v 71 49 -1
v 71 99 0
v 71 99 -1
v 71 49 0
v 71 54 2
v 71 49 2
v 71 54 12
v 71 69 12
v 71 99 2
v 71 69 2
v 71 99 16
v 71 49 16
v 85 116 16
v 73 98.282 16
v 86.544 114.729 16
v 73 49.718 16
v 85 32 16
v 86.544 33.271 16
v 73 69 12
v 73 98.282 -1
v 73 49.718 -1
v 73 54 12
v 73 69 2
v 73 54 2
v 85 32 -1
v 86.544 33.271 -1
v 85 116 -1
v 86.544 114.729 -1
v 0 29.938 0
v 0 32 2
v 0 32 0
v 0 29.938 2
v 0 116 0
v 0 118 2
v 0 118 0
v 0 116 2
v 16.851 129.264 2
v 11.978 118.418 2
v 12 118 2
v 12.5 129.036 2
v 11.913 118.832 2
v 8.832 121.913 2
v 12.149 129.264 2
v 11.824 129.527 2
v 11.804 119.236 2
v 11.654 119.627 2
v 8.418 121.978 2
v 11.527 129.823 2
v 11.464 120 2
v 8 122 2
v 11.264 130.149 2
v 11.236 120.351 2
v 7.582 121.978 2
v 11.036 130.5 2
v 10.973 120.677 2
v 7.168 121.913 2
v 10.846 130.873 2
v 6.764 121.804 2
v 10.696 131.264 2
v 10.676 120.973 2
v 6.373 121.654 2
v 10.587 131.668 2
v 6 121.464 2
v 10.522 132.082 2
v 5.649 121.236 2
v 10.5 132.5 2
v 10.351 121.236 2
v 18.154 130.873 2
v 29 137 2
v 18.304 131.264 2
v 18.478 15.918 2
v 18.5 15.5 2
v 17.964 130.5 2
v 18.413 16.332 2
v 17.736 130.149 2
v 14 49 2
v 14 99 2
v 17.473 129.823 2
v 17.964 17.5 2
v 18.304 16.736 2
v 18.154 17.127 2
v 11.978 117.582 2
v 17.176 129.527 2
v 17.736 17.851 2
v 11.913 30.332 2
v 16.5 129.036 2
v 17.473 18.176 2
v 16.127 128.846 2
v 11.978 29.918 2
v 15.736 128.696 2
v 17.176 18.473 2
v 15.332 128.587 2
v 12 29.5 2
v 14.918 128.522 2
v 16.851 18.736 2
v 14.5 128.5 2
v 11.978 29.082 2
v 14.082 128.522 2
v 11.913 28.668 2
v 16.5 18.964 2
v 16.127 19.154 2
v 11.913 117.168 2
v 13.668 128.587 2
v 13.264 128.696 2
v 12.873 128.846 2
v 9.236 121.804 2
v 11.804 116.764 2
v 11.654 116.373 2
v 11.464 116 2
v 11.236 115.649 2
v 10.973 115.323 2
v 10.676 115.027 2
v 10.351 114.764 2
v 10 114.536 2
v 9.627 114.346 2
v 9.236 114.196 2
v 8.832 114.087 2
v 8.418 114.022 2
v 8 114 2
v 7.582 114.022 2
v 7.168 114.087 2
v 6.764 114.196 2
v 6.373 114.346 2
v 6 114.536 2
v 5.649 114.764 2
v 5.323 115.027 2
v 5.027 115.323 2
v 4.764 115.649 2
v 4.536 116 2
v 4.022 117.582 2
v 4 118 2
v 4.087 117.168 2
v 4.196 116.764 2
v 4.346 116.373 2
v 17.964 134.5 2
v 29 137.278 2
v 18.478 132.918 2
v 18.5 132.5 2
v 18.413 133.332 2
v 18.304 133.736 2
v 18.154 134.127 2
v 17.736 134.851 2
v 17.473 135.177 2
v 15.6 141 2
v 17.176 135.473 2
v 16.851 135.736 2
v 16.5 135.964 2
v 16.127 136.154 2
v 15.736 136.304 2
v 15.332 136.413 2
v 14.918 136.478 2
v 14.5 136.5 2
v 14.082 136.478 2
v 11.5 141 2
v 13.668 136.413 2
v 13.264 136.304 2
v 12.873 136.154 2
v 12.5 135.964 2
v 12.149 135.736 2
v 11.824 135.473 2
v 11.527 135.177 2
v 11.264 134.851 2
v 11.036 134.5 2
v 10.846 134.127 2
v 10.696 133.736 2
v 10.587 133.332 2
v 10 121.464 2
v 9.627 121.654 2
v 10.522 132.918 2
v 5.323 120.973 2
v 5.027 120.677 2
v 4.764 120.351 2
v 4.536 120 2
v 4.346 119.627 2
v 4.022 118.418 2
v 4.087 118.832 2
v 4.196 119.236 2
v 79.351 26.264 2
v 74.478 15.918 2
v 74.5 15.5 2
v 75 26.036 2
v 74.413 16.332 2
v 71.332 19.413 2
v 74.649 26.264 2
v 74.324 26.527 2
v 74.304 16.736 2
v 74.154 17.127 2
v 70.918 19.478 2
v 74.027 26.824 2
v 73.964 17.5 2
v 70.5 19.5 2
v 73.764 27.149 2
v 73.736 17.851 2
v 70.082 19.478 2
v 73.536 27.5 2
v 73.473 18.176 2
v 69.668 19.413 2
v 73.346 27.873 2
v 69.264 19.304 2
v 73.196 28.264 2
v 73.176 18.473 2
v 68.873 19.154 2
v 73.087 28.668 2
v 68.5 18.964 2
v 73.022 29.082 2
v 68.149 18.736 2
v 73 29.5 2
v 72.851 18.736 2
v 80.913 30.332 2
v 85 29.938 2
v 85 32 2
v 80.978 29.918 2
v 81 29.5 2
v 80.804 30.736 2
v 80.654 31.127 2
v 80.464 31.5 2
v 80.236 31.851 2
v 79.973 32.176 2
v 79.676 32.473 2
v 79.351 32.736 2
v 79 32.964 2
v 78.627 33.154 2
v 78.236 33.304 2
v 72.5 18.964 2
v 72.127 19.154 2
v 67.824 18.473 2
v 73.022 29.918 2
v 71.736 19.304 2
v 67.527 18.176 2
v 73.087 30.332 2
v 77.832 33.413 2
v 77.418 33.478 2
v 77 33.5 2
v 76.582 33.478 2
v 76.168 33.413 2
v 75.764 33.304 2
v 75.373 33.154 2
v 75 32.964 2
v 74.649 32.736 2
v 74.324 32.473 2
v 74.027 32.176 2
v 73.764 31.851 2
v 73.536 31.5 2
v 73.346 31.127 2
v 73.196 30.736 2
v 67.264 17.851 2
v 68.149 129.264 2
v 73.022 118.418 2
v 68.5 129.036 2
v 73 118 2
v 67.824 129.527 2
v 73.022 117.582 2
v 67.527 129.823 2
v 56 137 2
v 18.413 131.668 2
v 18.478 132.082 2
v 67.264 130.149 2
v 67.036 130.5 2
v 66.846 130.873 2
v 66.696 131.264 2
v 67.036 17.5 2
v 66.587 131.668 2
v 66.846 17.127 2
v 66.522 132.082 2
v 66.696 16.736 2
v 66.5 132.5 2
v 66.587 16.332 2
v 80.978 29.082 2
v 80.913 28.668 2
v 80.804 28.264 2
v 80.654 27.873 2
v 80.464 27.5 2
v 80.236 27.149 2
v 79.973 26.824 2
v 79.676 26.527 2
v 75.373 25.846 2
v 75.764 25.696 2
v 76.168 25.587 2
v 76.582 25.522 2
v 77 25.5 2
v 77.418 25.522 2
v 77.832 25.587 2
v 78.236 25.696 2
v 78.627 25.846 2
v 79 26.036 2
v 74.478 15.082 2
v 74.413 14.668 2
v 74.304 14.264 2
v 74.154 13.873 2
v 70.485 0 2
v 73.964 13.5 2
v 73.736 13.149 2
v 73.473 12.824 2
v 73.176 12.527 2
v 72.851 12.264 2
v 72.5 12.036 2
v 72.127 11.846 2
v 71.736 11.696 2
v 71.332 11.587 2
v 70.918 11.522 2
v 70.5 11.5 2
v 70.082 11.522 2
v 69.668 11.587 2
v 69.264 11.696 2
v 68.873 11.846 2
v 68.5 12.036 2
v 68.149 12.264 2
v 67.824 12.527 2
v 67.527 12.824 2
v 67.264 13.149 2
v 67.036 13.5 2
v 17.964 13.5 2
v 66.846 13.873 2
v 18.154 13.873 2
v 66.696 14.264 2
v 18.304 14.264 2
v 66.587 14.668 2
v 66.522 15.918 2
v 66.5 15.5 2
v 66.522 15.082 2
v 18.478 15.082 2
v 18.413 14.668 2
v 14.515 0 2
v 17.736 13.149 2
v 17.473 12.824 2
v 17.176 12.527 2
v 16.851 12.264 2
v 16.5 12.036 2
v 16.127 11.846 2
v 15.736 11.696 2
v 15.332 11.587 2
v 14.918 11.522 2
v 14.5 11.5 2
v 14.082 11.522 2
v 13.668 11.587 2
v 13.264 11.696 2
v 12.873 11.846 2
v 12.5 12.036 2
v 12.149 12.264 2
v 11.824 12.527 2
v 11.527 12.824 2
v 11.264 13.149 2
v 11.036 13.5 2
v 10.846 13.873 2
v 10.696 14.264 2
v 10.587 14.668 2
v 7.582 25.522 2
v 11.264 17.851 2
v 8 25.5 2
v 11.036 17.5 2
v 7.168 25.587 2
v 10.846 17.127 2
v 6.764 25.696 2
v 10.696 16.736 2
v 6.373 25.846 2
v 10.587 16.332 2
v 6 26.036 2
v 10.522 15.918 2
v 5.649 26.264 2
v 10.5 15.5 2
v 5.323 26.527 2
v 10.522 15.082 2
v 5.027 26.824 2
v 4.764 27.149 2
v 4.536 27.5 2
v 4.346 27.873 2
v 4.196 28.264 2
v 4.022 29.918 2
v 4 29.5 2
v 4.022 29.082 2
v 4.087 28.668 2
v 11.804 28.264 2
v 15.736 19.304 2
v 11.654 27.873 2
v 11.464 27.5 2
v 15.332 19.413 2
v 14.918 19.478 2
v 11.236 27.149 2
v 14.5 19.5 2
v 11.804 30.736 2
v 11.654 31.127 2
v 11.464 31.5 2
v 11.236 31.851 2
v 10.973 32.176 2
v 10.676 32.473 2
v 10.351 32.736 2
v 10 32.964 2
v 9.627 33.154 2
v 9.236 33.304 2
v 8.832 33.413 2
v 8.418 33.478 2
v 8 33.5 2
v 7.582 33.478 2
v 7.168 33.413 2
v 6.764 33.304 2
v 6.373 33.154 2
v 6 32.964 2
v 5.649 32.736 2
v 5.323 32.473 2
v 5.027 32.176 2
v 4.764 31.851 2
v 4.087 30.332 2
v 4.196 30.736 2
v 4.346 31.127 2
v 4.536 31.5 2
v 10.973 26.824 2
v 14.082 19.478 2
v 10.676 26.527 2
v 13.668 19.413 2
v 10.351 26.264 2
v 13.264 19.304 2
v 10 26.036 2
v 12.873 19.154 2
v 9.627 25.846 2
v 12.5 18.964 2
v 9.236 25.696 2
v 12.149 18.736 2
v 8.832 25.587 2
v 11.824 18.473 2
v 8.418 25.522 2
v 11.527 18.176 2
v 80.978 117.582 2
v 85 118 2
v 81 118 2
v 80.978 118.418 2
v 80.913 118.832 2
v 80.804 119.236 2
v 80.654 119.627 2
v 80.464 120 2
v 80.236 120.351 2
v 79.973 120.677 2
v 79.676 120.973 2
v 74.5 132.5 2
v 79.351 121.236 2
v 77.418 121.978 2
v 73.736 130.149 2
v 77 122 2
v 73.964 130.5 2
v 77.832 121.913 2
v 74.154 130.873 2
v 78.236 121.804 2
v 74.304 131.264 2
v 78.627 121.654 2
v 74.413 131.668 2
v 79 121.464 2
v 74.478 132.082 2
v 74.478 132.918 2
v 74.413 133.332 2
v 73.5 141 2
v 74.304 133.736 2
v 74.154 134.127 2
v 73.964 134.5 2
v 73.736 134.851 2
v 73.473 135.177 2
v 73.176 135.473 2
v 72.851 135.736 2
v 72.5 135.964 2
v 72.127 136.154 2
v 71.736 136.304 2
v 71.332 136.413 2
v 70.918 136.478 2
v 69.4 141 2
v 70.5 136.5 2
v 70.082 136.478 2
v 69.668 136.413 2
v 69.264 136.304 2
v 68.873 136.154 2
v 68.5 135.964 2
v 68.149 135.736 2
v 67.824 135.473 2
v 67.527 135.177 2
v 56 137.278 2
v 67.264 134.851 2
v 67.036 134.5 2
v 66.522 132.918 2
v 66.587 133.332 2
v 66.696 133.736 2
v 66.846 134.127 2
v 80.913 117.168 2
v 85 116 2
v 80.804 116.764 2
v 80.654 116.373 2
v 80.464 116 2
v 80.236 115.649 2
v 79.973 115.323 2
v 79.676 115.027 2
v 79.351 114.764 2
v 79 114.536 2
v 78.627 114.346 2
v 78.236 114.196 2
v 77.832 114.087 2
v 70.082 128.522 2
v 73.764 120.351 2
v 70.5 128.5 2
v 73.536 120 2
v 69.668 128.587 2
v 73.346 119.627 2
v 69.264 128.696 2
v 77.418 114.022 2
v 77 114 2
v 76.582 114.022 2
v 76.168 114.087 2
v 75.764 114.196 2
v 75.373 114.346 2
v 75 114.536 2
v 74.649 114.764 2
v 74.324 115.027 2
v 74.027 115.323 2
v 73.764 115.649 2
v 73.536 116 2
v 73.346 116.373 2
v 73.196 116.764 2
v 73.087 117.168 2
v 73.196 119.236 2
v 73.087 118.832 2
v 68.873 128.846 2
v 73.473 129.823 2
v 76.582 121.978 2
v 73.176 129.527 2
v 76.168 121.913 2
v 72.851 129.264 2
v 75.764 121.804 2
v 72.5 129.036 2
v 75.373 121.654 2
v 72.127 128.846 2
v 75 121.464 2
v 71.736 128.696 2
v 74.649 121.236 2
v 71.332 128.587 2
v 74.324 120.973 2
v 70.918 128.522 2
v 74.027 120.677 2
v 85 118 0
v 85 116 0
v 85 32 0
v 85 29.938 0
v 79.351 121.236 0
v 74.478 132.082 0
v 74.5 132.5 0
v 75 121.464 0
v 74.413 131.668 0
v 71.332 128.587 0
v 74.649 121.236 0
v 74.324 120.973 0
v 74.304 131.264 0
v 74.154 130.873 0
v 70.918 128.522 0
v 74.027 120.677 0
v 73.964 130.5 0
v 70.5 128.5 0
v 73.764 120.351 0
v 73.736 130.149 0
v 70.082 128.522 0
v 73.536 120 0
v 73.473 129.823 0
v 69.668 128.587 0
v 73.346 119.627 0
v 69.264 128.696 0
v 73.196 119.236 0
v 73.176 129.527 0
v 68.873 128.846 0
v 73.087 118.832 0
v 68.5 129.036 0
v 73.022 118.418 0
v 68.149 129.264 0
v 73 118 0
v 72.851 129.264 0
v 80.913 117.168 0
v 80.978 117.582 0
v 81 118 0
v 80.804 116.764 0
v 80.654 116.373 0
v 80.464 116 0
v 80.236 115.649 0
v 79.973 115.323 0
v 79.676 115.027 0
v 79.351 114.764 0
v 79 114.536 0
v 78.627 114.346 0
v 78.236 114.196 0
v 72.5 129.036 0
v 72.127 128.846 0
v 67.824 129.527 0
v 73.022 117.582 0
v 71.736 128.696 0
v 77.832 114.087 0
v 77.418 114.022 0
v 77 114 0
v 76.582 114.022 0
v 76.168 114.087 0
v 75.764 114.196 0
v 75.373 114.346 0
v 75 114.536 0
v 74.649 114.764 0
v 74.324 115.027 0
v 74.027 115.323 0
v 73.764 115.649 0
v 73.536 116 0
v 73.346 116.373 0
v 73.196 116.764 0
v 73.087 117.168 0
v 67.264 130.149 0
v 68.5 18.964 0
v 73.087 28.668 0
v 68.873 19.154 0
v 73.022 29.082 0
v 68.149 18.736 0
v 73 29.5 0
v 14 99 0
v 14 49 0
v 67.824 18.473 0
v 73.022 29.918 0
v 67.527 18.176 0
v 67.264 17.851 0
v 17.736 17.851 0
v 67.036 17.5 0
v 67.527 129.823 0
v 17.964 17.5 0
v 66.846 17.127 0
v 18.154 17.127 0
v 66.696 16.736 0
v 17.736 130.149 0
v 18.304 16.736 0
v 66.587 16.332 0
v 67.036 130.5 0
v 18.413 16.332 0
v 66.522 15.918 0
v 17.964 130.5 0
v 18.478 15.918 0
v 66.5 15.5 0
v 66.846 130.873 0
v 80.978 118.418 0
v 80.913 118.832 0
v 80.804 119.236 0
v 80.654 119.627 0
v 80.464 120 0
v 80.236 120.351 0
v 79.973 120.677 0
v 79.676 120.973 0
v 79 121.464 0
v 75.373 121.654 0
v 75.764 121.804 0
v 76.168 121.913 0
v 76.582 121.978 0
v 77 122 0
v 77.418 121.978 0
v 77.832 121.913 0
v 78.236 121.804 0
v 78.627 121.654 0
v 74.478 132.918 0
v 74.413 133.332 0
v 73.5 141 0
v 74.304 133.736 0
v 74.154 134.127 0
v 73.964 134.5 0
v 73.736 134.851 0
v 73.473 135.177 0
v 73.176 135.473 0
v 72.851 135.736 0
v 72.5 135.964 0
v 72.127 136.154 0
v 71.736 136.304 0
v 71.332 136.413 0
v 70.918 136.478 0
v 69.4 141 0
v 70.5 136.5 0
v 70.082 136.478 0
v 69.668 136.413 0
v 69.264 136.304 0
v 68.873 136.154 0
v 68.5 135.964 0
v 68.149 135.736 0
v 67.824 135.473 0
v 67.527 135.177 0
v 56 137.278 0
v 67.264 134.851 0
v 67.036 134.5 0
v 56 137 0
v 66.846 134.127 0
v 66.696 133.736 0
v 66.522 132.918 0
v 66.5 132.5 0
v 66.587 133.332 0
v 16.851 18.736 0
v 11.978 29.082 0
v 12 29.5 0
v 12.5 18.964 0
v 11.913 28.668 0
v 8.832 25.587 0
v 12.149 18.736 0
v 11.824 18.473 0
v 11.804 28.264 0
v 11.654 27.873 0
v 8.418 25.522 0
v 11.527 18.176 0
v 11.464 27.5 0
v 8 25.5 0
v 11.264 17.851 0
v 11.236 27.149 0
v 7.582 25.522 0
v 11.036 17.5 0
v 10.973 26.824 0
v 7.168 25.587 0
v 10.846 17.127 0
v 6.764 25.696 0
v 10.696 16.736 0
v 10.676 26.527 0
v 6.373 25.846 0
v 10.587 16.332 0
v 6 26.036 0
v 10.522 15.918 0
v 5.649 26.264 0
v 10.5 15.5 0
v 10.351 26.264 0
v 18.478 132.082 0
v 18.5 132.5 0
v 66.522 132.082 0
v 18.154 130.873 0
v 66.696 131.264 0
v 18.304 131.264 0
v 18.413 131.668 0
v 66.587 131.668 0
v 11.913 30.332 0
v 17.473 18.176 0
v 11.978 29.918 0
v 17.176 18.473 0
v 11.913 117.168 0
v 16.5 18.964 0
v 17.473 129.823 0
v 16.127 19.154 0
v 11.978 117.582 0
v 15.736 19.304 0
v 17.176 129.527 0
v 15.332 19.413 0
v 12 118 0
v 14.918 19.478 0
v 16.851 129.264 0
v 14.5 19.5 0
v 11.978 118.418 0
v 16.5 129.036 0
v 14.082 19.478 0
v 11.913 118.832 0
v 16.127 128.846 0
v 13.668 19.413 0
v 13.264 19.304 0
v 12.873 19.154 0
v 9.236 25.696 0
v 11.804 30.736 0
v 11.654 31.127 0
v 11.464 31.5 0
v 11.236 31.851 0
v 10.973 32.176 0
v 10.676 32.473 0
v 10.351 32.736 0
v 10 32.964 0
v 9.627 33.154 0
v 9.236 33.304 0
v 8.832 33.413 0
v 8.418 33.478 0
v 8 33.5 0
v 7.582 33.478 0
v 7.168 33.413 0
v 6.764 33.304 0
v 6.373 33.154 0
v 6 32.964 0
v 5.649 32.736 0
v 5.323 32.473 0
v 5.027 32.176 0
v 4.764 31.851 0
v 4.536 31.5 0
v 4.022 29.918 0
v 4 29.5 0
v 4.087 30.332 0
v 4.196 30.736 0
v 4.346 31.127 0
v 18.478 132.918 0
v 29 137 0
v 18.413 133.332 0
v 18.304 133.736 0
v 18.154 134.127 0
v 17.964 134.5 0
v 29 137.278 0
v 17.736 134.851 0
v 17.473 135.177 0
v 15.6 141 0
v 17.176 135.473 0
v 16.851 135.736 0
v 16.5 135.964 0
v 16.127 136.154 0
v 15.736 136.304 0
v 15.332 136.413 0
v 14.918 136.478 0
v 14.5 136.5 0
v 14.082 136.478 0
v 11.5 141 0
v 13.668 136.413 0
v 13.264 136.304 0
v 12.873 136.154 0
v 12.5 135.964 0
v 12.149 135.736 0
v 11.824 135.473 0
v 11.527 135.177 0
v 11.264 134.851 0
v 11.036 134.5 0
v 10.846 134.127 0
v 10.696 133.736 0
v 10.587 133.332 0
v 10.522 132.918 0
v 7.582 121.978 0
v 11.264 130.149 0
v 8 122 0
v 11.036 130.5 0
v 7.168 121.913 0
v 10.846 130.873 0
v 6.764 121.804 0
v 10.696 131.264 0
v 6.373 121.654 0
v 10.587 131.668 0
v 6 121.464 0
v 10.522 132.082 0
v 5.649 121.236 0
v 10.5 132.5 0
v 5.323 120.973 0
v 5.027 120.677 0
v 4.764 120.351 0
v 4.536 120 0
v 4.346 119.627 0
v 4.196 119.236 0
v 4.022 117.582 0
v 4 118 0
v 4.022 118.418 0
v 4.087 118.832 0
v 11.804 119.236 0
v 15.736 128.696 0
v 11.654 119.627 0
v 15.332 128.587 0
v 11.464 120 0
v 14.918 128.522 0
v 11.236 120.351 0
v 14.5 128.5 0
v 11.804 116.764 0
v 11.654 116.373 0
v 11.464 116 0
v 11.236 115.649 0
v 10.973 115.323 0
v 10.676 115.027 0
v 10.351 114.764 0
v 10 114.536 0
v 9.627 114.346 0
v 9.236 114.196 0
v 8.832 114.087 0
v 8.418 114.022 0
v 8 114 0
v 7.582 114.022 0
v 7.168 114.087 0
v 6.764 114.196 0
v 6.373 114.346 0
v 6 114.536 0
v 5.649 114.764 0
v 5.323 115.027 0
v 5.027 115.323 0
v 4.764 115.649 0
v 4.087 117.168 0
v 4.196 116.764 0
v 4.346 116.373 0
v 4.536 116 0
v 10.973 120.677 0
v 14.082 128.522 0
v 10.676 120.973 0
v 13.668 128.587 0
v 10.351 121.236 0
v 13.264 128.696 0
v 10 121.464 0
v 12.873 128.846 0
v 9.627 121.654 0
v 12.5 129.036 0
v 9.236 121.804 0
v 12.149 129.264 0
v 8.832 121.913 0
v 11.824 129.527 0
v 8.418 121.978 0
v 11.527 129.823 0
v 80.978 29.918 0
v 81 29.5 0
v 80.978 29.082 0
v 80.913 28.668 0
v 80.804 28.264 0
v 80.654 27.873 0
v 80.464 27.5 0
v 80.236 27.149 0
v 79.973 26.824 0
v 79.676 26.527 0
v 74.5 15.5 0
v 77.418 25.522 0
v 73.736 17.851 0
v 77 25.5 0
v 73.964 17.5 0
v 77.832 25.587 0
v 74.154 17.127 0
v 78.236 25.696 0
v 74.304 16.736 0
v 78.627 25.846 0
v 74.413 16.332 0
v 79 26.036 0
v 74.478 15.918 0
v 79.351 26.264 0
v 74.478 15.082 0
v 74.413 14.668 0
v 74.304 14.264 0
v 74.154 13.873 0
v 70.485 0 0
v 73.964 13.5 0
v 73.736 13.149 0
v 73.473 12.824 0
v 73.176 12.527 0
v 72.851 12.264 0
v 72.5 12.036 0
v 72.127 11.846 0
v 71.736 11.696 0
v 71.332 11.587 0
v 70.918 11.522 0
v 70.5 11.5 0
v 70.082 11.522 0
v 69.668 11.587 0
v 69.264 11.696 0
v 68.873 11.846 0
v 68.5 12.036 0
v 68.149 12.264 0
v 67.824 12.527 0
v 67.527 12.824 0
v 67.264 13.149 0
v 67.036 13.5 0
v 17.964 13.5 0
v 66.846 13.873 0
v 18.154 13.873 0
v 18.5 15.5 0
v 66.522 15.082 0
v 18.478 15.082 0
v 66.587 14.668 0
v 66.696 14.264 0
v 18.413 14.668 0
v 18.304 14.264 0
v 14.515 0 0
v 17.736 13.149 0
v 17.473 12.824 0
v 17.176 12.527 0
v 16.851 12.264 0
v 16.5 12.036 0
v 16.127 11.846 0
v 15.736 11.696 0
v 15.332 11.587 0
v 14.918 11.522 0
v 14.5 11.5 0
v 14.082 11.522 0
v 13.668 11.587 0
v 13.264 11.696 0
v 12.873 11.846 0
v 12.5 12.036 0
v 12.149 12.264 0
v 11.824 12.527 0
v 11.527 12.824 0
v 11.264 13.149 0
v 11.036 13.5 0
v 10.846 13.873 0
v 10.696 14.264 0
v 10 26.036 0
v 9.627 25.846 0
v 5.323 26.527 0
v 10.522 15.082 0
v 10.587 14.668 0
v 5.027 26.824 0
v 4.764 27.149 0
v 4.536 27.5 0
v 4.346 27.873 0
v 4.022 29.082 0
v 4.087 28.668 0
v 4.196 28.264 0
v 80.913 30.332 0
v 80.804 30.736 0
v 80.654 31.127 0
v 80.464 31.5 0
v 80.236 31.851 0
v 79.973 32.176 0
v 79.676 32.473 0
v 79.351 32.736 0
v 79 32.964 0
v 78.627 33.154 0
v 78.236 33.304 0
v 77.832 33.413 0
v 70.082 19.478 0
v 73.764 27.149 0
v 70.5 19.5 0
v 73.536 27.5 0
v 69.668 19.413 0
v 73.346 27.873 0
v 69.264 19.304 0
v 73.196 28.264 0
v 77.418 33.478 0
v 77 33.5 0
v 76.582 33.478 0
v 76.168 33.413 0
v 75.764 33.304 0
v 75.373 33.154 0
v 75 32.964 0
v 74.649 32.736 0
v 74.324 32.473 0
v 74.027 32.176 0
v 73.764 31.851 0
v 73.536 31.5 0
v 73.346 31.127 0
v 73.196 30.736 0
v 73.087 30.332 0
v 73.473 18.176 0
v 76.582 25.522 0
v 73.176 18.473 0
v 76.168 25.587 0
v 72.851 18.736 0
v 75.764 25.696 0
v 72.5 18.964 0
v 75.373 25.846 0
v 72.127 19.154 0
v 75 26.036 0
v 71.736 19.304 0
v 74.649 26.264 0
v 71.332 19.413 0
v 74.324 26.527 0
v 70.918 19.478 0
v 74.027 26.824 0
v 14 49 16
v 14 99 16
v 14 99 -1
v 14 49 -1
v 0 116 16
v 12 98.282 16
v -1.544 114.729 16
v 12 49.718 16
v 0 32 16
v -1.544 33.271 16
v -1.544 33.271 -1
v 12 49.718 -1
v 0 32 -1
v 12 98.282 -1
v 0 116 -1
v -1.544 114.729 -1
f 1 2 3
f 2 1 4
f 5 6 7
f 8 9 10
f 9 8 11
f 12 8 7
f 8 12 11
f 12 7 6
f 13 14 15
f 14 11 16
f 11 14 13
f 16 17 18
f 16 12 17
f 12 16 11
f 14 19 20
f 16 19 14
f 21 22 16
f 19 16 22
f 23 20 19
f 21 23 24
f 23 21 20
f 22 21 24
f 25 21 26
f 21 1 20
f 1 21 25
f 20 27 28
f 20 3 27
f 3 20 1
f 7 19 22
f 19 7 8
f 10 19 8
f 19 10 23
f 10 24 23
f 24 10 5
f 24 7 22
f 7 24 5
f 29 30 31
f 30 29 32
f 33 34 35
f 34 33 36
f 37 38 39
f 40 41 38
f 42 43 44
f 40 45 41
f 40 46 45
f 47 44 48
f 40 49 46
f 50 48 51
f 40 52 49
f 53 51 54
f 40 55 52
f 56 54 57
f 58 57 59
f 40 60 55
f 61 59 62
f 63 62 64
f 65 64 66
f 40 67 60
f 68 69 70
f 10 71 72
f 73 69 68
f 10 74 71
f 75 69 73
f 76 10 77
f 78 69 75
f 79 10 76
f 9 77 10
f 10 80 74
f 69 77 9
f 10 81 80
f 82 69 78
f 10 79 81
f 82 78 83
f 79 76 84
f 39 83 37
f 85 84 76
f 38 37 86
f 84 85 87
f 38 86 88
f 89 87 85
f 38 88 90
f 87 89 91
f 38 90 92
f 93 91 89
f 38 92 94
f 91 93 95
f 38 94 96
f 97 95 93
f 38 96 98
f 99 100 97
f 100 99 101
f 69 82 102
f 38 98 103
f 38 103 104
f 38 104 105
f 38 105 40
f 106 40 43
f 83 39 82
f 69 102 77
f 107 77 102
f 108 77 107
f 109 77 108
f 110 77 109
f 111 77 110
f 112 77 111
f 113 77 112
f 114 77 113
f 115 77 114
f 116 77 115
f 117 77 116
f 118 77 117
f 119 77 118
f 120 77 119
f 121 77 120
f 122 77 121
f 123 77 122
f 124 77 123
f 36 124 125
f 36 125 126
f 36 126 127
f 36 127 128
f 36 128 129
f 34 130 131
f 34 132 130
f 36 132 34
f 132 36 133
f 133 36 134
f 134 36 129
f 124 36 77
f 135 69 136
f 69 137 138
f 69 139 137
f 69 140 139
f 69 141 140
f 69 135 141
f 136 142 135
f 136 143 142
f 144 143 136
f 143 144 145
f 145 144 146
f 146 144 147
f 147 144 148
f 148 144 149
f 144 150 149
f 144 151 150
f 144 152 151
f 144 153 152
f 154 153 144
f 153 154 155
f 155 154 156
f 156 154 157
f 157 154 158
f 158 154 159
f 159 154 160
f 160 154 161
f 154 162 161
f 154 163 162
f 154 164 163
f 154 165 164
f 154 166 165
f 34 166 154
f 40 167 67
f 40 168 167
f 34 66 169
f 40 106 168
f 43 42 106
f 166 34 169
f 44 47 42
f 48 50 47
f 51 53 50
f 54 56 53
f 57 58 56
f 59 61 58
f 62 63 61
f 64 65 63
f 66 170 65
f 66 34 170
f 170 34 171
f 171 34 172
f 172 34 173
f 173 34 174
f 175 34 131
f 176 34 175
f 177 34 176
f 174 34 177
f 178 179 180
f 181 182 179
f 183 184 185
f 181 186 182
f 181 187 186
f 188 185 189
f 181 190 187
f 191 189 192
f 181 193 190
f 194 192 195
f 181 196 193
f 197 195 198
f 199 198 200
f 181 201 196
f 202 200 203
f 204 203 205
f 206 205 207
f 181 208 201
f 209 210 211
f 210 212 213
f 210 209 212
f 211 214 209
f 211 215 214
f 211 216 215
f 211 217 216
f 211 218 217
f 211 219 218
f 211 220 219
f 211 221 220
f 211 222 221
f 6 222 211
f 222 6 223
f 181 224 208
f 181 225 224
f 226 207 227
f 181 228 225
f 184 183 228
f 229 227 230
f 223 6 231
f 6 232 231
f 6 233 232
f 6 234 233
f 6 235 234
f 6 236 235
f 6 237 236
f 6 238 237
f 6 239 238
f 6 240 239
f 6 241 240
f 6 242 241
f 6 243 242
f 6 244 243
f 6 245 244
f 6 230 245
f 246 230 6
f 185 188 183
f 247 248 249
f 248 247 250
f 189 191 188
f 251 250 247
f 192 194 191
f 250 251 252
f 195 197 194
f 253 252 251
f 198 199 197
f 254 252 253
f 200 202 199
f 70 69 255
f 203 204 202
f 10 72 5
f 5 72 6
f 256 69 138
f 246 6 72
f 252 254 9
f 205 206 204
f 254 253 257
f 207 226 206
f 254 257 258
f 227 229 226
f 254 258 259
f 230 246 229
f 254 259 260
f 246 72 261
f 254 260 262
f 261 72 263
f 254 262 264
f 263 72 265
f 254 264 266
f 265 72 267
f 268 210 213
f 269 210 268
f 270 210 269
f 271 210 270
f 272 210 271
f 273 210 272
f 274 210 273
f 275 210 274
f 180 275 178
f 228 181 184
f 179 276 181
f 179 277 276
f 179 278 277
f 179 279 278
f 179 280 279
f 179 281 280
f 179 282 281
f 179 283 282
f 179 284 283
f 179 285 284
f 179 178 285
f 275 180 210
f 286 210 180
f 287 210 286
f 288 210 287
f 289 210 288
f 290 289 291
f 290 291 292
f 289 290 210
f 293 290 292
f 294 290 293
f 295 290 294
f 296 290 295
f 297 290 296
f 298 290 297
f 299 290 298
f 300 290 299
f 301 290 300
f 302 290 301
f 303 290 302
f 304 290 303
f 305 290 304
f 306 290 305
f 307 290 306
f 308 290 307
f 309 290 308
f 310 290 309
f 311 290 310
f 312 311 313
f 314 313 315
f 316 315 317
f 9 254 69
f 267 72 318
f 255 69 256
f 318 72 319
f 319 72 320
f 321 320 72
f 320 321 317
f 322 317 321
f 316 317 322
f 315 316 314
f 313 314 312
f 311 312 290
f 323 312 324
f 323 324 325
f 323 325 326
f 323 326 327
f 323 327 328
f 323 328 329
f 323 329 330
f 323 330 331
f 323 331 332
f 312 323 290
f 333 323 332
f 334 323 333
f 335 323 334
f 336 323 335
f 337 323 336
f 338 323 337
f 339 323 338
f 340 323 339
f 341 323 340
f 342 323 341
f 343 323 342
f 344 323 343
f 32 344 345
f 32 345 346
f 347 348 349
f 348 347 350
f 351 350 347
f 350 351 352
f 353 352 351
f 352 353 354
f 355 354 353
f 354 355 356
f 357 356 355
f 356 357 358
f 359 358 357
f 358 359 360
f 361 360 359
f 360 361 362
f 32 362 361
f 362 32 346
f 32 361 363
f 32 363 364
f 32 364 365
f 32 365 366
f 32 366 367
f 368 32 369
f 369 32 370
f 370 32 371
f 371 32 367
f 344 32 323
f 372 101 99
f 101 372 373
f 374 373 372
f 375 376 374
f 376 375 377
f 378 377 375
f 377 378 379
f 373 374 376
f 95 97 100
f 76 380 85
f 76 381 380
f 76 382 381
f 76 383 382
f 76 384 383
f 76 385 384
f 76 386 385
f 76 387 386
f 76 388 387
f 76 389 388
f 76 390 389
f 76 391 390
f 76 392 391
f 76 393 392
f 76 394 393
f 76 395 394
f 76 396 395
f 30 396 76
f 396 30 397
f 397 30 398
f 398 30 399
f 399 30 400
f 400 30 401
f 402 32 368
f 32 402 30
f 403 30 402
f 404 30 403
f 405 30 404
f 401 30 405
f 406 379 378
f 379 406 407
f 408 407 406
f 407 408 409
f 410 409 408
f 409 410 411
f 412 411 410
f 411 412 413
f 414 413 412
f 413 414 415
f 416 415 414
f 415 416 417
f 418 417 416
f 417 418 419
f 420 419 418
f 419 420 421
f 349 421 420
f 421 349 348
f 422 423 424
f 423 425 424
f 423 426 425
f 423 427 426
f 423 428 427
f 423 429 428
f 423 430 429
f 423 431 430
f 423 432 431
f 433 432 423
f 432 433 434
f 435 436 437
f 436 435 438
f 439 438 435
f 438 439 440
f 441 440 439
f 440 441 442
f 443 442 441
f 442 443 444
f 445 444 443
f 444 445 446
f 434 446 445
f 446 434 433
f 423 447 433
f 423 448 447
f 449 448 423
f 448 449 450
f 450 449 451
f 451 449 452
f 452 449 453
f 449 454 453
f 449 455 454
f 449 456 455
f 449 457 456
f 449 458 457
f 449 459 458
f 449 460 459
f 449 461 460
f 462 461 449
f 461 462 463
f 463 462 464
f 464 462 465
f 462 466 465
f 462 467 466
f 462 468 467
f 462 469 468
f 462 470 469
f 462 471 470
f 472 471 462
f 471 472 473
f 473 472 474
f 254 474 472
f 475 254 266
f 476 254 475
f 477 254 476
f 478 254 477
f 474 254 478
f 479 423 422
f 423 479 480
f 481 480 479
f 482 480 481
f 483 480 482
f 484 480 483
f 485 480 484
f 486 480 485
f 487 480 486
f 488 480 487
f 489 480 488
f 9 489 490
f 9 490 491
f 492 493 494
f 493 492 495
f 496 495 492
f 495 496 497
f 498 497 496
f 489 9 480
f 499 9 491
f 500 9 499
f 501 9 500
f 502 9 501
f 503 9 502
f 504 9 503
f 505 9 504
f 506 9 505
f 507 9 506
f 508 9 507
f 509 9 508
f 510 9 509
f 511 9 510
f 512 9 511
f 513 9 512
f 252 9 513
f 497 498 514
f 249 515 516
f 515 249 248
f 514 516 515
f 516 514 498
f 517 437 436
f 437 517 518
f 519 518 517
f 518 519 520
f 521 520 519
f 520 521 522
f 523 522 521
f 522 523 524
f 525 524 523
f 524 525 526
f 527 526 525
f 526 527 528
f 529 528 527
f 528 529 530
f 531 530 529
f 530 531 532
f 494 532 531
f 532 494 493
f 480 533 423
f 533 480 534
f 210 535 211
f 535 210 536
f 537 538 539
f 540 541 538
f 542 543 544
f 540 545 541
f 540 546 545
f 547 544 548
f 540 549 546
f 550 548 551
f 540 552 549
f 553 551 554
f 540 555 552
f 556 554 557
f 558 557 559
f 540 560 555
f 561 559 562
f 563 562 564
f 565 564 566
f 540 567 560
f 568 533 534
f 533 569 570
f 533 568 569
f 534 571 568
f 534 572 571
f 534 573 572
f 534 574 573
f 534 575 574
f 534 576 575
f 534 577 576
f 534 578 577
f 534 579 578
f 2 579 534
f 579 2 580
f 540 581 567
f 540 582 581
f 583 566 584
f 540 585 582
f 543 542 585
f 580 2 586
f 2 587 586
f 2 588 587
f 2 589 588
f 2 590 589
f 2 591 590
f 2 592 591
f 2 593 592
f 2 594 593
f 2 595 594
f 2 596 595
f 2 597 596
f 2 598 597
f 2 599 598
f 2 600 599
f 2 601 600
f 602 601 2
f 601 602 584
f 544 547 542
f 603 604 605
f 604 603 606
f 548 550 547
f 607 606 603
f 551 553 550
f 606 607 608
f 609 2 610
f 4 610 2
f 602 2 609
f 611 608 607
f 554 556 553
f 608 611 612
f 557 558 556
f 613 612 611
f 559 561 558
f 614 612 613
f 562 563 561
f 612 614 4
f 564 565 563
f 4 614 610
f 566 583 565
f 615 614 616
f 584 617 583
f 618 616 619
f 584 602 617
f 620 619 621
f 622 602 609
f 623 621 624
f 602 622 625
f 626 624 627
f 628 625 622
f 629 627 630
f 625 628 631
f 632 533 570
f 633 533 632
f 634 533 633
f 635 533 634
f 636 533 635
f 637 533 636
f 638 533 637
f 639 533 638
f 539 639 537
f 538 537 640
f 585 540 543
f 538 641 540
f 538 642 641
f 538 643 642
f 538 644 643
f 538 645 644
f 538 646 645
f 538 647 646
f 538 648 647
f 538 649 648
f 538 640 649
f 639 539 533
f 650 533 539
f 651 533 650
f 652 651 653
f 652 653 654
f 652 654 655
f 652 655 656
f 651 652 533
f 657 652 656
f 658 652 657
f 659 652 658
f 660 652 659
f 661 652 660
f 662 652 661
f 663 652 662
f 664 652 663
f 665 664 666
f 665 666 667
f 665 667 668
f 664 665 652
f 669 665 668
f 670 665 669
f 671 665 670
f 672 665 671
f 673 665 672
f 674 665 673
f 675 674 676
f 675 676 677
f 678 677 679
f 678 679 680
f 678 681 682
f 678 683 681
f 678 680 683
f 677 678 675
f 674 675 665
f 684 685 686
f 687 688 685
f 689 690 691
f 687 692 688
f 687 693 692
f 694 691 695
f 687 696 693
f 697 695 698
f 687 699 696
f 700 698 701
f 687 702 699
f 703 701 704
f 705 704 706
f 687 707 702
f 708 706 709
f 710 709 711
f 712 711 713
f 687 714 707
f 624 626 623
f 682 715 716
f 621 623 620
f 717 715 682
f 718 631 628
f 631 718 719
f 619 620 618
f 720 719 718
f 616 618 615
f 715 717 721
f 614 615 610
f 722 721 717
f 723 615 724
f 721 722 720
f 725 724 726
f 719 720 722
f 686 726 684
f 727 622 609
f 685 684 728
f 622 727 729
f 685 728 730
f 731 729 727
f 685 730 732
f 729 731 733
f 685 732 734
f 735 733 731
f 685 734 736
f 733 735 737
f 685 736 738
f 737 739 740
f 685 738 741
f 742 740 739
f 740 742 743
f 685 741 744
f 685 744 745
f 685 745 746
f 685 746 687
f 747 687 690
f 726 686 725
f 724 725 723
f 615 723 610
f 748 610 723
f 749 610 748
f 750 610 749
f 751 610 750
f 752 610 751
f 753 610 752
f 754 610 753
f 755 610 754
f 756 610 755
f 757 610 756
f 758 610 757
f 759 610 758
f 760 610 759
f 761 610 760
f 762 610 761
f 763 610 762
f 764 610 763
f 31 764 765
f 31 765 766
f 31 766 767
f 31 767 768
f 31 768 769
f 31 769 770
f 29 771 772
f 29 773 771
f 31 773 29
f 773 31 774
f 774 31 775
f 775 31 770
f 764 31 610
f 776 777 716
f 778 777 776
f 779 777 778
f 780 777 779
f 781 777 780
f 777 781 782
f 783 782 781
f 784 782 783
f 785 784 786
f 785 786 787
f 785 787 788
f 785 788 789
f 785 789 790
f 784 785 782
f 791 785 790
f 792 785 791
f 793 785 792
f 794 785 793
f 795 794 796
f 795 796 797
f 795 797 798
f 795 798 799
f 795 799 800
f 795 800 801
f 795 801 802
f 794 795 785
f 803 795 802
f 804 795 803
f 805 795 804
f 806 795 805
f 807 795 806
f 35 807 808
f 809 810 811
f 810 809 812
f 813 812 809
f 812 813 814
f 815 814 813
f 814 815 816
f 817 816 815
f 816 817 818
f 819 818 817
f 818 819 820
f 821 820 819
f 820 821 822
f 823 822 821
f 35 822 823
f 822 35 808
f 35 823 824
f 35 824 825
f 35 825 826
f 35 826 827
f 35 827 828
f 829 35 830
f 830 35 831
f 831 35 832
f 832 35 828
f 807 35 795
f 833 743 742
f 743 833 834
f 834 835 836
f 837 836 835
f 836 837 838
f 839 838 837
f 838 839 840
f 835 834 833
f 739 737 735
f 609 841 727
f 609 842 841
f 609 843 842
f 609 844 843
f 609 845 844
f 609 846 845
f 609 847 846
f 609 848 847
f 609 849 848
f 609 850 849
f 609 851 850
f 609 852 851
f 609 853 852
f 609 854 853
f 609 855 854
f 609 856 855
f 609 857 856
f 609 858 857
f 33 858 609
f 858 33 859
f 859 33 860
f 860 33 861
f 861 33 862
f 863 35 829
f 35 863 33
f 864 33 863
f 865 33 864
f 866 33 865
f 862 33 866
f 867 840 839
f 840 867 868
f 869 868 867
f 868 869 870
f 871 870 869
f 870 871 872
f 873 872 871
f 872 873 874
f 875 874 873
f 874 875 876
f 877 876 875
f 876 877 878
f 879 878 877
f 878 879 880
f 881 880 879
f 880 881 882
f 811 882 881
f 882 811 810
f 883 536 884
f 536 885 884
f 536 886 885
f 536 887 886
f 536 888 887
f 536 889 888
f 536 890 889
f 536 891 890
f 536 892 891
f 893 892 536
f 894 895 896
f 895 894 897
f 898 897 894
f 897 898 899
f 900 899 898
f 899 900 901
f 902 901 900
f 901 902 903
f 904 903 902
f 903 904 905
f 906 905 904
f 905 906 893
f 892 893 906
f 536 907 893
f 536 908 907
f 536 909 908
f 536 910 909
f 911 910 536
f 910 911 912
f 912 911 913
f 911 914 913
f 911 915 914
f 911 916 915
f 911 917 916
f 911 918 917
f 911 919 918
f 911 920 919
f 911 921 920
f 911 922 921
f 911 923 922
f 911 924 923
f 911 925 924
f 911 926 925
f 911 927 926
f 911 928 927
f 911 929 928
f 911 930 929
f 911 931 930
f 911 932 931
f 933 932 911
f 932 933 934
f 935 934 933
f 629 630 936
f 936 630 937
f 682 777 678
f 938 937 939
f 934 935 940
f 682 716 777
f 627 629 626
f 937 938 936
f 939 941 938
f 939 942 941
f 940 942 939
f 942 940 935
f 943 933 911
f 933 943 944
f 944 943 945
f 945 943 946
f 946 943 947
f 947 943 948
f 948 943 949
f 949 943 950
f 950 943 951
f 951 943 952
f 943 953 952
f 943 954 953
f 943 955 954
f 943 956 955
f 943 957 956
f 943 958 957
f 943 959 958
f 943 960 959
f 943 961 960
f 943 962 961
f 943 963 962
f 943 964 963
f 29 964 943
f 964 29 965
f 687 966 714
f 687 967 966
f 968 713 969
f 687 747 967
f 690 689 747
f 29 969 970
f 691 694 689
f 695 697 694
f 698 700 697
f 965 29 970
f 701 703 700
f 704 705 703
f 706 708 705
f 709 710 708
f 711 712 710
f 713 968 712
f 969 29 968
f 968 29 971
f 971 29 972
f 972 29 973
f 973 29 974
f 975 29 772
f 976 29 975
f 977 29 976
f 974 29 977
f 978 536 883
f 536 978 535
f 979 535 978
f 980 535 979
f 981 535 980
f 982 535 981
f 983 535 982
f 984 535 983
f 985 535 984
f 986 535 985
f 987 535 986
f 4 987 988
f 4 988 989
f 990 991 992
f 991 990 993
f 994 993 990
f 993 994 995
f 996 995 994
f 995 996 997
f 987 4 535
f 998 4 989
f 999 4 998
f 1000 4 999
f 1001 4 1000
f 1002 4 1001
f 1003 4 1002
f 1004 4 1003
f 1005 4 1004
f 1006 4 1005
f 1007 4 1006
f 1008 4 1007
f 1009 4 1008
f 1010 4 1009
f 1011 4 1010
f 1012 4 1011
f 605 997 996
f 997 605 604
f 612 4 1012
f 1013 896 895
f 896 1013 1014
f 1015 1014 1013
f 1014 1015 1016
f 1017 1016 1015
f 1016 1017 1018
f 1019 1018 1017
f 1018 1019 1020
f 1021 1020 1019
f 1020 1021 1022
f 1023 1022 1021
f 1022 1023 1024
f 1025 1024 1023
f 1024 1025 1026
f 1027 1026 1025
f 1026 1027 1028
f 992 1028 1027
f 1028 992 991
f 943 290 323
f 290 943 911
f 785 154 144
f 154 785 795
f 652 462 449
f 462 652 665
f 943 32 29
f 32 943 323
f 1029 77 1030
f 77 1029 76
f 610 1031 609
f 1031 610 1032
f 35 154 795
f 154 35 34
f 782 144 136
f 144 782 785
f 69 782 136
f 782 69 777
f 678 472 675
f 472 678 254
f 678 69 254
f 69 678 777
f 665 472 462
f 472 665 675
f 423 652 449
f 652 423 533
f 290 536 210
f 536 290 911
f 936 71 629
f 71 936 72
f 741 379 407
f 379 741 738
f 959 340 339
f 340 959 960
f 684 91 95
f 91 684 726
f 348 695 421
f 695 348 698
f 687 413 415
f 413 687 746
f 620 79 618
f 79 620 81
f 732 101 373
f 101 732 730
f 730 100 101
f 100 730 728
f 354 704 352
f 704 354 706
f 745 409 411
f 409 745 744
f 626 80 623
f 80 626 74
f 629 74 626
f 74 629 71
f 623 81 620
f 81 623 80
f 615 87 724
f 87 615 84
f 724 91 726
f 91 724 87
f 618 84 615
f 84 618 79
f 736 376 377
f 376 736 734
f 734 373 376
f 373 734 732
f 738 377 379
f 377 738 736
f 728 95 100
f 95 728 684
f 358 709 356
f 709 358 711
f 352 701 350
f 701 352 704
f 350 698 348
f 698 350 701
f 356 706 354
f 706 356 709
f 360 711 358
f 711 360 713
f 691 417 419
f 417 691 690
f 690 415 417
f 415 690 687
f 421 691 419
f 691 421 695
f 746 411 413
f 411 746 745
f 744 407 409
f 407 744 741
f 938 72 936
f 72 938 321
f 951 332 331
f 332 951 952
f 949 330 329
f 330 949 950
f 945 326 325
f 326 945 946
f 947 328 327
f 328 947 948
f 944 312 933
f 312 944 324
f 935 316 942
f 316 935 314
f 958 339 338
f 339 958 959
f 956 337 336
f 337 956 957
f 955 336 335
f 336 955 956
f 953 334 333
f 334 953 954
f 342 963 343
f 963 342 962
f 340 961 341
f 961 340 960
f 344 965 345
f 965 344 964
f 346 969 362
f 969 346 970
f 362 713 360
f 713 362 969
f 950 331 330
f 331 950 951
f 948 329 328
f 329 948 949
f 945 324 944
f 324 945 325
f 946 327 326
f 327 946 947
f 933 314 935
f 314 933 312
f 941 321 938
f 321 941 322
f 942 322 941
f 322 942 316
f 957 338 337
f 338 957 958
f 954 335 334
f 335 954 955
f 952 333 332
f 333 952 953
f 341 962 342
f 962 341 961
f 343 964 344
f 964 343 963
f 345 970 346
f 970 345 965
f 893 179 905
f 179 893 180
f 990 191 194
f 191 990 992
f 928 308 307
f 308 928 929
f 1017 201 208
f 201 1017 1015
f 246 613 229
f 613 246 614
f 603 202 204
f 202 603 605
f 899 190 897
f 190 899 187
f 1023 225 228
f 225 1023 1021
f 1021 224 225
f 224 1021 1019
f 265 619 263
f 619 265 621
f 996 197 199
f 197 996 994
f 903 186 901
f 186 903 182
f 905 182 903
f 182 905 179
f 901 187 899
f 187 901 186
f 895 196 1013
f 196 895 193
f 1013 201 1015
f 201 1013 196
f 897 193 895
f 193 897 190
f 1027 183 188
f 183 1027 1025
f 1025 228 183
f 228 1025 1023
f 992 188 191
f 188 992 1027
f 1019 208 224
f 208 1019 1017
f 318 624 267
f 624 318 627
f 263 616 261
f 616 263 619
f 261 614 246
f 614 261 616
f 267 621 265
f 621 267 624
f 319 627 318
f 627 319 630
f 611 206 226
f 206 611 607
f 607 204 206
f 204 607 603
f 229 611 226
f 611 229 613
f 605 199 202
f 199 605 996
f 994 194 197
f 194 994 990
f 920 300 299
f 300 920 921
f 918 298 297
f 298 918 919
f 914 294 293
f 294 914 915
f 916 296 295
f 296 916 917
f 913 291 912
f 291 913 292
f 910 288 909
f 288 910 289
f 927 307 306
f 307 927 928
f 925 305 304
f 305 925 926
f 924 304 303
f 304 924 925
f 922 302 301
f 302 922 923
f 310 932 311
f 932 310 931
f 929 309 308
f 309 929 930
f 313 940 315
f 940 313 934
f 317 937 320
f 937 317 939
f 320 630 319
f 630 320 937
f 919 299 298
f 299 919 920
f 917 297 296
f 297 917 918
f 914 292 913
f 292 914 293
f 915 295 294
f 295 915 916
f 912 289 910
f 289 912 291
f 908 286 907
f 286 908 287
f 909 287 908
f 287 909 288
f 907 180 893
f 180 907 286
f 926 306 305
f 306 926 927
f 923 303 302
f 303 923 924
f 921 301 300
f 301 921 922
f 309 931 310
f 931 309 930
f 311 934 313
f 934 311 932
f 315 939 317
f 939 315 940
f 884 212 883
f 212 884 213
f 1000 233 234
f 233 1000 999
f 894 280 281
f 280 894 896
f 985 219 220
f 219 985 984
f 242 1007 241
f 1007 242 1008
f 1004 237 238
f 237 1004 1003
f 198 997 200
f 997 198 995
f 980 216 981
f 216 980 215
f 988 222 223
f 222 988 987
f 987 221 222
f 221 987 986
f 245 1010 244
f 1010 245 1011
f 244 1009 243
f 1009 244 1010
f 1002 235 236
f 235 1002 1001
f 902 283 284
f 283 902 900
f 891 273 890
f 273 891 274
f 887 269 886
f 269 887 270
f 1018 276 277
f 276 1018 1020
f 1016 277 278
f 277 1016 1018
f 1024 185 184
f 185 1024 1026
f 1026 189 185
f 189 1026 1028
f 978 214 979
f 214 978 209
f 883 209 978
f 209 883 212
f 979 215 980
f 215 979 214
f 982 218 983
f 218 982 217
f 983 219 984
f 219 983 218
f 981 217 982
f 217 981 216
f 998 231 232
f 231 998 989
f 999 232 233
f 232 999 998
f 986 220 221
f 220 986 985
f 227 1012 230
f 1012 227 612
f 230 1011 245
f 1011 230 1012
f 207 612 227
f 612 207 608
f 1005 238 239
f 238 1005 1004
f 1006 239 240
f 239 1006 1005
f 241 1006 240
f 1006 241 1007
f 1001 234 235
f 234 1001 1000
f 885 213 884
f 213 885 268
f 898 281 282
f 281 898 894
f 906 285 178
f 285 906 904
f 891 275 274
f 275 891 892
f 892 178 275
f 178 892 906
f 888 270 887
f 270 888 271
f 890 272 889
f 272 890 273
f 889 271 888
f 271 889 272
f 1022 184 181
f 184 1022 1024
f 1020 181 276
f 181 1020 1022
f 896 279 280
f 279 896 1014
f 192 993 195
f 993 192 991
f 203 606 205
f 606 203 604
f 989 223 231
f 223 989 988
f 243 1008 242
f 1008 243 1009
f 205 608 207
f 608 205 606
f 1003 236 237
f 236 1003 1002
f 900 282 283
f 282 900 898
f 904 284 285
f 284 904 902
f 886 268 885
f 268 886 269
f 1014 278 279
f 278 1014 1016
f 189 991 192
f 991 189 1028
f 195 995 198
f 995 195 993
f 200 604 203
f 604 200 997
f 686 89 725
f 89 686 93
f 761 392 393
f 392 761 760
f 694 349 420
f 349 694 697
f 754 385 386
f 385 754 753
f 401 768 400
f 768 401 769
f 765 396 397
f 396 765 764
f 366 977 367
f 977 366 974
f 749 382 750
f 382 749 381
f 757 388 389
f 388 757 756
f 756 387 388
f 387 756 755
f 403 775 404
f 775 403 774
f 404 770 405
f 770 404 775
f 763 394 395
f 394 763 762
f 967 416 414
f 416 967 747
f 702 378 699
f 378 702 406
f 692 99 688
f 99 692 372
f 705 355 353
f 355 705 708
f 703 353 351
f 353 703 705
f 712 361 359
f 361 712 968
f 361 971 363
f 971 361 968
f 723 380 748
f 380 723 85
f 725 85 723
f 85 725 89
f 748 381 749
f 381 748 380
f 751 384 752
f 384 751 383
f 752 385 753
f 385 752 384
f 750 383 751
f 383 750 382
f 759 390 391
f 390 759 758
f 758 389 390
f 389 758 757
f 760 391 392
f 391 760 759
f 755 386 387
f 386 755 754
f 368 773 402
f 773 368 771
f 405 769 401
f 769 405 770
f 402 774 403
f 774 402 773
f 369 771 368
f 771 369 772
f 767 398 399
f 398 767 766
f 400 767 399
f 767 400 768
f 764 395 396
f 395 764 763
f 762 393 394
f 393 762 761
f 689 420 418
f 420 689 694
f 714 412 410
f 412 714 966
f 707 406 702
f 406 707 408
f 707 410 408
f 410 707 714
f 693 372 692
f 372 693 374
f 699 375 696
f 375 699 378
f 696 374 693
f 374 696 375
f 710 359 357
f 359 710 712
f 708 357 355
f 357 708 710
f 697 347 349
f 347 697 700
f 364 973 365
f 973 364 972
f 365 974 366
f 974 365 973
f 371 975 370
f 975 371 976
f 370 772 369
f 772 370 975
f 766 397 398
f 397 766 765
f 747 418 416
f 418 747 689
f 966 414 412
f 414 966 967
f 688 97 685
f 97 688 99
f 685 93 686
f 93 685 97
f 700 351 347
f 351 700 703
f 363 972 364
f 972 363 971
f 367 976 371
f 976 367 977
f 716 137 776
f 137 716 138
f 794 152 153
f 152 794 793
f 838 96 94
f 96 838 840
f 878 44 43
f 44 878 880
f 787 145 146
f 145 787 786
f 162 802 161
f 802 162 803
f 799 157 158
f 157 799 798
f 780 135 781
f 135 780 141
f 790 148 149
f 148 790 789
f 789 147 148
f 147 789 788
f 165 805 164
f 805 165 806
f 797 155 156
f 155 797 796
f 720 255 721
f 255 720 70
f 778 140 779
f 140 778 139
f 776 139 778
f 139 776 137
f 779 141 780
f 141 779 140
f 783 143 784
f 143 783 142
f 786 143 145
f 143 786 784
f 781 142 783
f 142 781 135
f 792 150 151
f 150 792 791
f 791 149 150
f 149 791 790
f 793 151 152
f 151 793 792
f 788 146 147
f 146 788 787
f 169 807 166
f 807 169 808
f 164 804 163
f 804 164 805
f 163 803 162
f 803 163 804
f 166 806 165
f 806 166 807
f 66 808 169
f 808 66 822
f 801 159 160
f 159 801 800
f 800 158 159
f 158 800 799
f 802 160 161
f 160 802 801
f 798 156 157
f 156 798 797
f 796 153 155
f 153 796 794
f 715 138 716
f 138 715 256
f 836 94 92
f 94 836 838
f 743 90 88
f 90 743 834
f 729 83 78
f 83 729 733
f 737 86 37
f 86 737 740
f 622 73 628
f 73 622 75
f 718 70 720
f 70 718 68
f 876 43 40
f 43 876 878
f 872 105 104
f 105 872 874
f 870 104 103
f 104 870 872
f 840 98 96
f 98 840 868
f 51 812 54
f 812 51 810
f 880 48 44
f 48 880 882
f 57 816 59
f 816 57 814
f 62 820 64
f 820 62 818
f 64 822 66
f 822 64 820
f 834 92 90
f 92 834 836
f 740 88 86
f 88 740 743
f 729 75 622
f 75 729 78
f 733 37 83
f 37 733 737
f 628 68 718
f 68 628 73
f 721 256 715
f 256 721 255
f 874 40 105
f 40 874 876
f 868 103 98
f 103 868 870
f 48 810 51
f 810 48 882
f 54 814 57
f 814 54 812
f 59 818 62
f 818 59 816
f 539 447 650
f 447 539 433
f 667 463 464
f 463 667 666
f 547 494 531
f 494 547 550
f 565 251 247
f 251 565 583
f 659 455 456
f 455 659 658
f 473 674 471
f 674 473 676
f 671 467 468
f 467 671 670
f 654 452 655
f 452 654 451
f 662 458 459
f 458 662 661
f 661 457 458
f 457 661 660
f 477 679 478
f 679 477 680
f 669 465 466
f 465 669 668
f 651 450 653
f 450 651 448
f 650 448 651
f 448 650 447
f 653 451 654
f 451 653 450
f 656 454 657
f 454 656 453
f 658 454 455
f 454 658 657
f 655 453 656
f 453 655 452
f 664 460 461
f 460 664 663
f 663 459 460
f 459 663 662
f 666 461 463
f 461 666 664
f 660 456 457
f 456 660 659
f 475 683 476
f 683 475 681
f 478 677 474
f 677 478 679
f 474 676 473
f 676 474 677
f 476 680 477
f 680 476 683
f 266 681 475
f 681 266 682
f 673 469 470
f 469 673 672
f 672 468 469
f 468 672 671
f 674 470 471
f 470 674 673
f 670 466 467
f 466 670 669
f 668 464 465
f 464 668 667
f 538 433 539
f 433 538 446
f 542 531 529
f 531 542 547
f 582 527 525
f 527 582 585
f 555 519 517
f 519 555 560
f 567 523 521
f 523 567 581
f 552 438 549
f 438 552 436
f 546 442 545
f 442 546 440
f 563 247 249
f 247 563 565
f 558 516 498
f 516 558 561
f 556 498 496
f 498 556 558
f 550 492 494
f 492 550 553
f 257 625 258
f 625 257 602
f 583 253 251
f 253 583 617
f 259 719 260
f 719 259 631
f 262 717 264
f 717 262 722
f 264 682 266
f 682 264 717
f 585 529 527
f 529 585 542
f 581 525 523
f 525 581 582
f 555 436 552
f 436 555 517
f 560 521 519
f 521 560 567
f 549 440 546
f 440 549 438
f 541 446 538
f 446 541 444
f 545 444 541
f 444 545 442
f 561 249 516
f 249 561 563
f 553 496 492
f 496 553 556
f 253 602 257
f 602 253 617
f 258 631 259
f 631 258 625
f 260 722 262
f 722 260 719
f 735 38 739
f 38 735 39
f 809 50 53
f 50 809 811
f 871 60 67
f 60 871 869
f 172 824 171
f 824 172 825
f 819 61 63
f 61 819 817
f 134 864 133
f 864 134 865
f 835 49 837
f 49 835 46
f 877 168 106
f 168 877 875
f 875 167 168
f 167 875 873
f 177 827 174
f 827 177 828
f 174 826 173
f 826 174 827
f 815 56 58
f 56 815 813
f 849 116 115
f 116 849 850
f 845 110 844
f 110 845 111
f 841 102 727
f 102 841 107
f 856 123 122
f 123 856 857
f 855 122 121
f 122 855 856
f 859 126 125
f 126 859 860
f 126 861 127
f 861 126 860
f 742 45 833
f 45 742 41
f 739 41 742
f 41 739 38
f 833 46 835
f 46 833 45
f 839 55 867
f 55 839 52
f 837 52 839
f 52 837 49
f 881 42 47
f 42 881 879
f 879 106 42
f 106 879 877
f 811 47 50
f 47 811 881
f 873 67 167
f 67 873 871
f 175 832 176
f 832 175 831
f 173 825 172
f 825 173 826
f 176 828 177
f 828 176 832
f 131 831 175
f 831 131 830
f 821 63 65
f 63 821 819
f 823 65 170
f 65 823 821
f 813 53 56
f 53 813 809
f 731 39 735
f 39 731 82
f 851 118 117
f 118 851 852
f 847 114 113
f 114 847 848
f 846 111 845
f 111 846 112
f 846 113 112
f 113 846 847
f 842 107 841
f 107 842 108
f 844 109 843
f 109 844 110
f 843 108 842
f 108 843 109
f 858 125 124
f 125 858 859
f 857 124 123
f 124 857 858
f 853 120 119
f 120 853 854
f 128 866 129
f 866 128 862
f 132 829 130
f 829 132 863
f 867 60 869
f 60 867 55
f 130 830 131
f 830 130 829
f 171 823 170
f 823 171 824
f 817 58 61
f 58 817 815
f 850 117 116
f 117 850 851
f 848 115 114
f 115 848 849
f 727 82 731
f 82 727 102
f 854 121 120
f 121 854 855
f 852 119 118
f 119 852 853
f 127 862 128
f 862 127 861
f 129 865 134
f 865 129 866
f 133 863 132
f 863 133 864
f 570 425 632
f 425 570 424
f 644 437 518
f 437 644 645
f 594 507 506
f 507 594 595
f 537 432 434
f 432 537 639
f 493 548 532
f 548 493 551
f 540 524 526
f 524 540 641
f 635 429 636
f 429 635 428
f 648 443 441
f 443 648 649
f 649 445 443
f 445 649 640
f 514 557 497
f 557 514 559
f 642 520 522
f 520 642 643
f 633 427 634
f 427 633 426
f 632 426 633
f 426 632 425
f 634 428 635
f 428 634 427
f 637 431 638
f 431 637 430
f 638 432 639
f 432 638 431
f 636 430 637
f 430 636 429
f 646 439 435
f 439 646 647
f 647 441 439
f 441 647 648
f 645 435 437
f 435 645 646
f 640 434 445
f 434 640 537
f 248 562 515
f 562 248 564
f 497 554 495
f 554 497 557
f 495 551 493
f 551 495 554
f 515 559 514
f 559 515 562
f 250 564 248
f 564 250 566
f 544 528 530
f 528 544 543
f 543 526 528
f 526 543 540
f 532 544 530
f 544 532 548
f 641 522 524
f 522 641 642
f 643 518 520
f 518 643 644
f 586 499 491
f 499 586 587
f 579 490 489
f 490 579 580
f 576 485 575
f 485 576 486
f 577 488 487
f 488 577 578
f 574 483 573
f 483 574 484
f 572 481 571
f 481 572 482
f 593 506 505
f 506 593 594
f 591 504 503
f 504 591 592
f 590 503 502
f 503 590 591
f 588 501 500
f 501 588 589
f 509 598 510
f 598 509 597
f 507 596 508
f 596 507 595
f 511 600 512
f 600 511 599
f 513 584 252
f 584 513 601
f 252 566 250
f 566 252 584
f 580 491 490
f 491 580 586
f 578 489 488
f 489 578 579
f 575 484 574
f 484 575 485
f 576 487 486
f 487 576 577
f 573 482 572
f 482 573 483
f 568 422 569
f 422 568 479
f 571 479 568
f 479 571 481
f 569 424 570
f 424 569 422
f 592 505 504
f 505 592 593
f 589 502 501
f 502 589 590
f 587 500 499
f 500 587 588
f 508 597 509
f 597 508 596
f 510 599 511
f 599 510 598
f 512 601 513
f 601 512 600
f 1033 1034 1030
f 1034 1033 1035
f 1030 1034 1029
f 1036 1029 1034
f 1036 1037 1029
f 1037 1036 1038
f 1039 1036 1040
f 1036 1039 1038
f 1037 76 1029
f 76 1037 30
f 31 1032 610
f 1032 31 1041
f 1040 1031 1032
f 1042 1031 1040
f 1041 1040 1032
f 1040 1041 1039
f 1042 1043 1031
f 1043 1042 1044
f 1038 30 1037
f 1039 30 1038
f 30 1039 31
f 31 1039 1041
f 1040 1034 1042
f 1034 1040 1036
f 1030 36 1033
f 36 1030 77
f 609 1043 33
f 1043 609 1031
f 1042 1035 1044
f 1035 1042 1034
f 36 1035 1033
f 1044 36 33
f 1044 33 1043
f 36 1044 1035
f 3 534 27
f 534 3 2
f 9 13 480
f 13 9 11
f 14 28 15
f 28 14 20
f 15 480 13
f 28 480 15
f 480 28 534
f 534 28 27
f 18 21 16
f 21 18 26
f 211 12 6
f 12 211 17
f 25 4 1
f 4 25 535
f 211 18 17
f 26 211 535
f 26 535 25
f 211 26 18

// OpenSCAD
// EMAX Nighthawk 280 Lower Protection Plate
// Craig J Perry, Started on 30th Dec 2015
//
// All dimensions are in mm.
//
// The board is a rectangle, 85 wide x 141
// tall, with right angle triangles (a, b, d,
// e, f, h, i, j, l, m), rectangles (c, g,
// k) and holes (o, p, q, r, s, t, u) cut out.
//
//
//          e /\f   g   h/\ i
//           /  \-------/  \
//          /  r         s  \
//          \ u           t /
//          d\             /j
//            |           |
//            |           |
//          c |           | k
//            |           |
//          b/             \l
//          /               \
//          \  q         p  /
//          a\  n       o  /m
//            \___________/
//
//

// Increase resolution of hole circumferences
$fn = 60;

// Protection plate thickness
pp_thickness = 2;

// Side plate height
sp_height = 15;

// Cutouts
a_x = 15;
a_y = 32;
b_x = 14;
b_y = 17;
c_x = 14;
c_y = 50;
d_x = 14;
d_y = 17;
e_x = 12;
e_y = 25;
f_x = 17;
f_y = 4;
g_x = 27;
g_y = 4;
h_x = 17;
h_y = 4;
i_x = 12;
i_y = 25;
j_x = 14;
j_y = 17;
k_x = 14;
k_y = 50;
l_x = 14;
l_y = 17;
m_x = 15;
m_y = 32;

// Holes
nut_diameter = 6 + 2;
n_x = 14.5;
n_y = 15.5;
o_x = 70.5;
o_y = 15.5;
p_x = 77;
p_y = 29.5;
q_x = 8;
q_y = 29.5;
r_x = 14.5;
r_y = 132.5;
s_x = 70.5;
s_y = 132.5;
t_x = 8;
t_y = 118;
u_x = 77;
u_y = 118;

// Power distribution board
pdb_width       = e_x + f_x + g_x + h_x + i_x;
pdb_length      = a_y + b_y + c_y + d_y + e_y;

// Sometimes rotated pieces fail to intersect their full thickness
workaround_thickness = 2;
workaround_offset = 1;


module RightAngleTriangle(x_len, y_len, translation=[0,0,0], thickness=pp_thickness)
{
    x_offset = sign(x_len);
    y_offset = sign(y_len);
    translate(translation) {
        translate([-x_offset, -y_offset, -workaround_thickness/2]) {    
            linear_extrude(height=thickness+workaround_thickness) {
                polygon(
                    points=[[0,0],[x_len+x_offset,0],[0,y_len+y_offset]],
                    paths=[[0,1,2]]
                );
            }
        }
    }
}


module Rectangle(x, y, translation=[0,0,0], thickness=pp_thickness, z_rotation=0)
{
    translate(translation) {
        translate([0,0, -workaround_thickness/2]) {
            rotate([0,0,z_rotation]) {
                cube([x, y, thickness+workaround_thickness]);
            }
        }
    }
}


module Hole(x, y, diameter=nut_diameter, thickness=pp_thickness)
{
    translate([x,y,0-workaround_offset]) {
        cylinder(thickness+workaround_thickness, d=diameter);
    }
}


module BottomPlate()
{
    difference() {
        // Uncut base plate
        cube([pdb_width, pdb_length, pp_thickness]);
        
        // a
        RightAngleTriangle(a_x, a_y);
        
        // b
        RightAngleTriangle(b_x, -b_y, [0,a_y+b_y,0]);
        
        // c
        Rectangle(c_x, c_y, [0,a_y+b_y,0]);
        
        // d
        RightAngleTriangle(d_x, d_y, [0,a_y+b_y+c_y,0]);
        
        // e
        RightAngleTriangle(e_x, -e_y, [0,pdb_length,0]);
        
        // f
        RightAngleTriangle(-f_x, -f_y, [e_x+f_x,pdb_length,0]);
        
        // g
        Rectangle(g_x, g_y, [e_x+f_x,pdb_length-g_y,0]);
        
        // h
        RightAngleTriangle(h_x, -h_y, [e_x+f_x+g_x,pdb_length,0]);
        
        // i
        RightAngleTriangle(-i_x, -i_y, [pdb_width,pdb_length,0]);
        
        // j
        RightAngleTriangle(-j_x, j_y, [pdb_width,m_y+l_y+k_y,0]);
        
        // k
        Rectangle(k_x, k_y, [pdb_width-k_x,m_y+l_y,0]);
        
        // l
        RightAngleTriangle(-l_x, -l_y, [pdb_width,m_y+l_y,0]);
        
        // m
        RightAngleTriangle(-m_x, m_y, [pdb_width,0,0]);
        
        // n
        Hole(n_x, n_y);
        
        // o
        Hole(o_x, o_y);
        
        // p
        Hole(p_x, p_y);
        
        // q
        Hole(q_x, q_y);
        
        // r
        Hole(r_x, r_y);
        
        // s
        Hole(s_x, s_y);
        
        // t
        Hole(t_x, t_y);
        
        // u
        Hole(u_x, u_y);
    }
}


// Side plate components are denoted by upper case, but correspond
// with the diagram above. "B" is the side plate part sitting on
// the edge that "b" creates with its hypotenuse.

B_len = sqrt((b_x * b_x) + (b_y * b_y));  // Pythagoras
B_rot = 90+(atan(b_y/b_x));               // sohcahTOA
D_len = sqrt((d_x * d_x) + (d_y * d_y));
D_rot = 270-(atan(d_y/d_x));
J_len = sqrt((l_x * l_x) + (l_y * l_y));
J_rot = 270+(atan(l_y/l_x));
L_len = sqrt((j_x * j_x) + (j_y * j_y));
L_rot = 90-(atan(j_y/j_x));


module SidePlate()
{
        // B
        Rectangle(pp_thickness, B_len, [b_x,a_y+b_y,0], sp_height, B_rot);
        
        // C
        Rectangle(pp_thickness, c_y, [c_x-pp_thickness,a_y+b_y,0], sp_height);
        
        // D
        Rectangle(pp_thickness, D_len, [0,a_y+b_y+c_y+d_y,0], sp_height, D_rot);
        
        // J
        Rectangle(pp_thickness, J_len, [pdb_width-l_x,m_y+l_y+k_y,0], sp_height, J_rot);
        
        difference() {
            // K
            Rectangle(pp_thickness, k_y, [pdb_width-k_x,m_y+l_y,0], sp_height);
            
            // USB hole
            Rectangle(pp_thickness*2, 12, [pdb_width-k_x-pp_thickness/2,m_y+l_y+4,3], 10);
        }
        
        // L
        Rectangle(pp_thickness, L_len, [pdb_width,m_y,0], sp_height, L_rot);
}


union() {
    BottomPlate();
    SidePlate();
}
